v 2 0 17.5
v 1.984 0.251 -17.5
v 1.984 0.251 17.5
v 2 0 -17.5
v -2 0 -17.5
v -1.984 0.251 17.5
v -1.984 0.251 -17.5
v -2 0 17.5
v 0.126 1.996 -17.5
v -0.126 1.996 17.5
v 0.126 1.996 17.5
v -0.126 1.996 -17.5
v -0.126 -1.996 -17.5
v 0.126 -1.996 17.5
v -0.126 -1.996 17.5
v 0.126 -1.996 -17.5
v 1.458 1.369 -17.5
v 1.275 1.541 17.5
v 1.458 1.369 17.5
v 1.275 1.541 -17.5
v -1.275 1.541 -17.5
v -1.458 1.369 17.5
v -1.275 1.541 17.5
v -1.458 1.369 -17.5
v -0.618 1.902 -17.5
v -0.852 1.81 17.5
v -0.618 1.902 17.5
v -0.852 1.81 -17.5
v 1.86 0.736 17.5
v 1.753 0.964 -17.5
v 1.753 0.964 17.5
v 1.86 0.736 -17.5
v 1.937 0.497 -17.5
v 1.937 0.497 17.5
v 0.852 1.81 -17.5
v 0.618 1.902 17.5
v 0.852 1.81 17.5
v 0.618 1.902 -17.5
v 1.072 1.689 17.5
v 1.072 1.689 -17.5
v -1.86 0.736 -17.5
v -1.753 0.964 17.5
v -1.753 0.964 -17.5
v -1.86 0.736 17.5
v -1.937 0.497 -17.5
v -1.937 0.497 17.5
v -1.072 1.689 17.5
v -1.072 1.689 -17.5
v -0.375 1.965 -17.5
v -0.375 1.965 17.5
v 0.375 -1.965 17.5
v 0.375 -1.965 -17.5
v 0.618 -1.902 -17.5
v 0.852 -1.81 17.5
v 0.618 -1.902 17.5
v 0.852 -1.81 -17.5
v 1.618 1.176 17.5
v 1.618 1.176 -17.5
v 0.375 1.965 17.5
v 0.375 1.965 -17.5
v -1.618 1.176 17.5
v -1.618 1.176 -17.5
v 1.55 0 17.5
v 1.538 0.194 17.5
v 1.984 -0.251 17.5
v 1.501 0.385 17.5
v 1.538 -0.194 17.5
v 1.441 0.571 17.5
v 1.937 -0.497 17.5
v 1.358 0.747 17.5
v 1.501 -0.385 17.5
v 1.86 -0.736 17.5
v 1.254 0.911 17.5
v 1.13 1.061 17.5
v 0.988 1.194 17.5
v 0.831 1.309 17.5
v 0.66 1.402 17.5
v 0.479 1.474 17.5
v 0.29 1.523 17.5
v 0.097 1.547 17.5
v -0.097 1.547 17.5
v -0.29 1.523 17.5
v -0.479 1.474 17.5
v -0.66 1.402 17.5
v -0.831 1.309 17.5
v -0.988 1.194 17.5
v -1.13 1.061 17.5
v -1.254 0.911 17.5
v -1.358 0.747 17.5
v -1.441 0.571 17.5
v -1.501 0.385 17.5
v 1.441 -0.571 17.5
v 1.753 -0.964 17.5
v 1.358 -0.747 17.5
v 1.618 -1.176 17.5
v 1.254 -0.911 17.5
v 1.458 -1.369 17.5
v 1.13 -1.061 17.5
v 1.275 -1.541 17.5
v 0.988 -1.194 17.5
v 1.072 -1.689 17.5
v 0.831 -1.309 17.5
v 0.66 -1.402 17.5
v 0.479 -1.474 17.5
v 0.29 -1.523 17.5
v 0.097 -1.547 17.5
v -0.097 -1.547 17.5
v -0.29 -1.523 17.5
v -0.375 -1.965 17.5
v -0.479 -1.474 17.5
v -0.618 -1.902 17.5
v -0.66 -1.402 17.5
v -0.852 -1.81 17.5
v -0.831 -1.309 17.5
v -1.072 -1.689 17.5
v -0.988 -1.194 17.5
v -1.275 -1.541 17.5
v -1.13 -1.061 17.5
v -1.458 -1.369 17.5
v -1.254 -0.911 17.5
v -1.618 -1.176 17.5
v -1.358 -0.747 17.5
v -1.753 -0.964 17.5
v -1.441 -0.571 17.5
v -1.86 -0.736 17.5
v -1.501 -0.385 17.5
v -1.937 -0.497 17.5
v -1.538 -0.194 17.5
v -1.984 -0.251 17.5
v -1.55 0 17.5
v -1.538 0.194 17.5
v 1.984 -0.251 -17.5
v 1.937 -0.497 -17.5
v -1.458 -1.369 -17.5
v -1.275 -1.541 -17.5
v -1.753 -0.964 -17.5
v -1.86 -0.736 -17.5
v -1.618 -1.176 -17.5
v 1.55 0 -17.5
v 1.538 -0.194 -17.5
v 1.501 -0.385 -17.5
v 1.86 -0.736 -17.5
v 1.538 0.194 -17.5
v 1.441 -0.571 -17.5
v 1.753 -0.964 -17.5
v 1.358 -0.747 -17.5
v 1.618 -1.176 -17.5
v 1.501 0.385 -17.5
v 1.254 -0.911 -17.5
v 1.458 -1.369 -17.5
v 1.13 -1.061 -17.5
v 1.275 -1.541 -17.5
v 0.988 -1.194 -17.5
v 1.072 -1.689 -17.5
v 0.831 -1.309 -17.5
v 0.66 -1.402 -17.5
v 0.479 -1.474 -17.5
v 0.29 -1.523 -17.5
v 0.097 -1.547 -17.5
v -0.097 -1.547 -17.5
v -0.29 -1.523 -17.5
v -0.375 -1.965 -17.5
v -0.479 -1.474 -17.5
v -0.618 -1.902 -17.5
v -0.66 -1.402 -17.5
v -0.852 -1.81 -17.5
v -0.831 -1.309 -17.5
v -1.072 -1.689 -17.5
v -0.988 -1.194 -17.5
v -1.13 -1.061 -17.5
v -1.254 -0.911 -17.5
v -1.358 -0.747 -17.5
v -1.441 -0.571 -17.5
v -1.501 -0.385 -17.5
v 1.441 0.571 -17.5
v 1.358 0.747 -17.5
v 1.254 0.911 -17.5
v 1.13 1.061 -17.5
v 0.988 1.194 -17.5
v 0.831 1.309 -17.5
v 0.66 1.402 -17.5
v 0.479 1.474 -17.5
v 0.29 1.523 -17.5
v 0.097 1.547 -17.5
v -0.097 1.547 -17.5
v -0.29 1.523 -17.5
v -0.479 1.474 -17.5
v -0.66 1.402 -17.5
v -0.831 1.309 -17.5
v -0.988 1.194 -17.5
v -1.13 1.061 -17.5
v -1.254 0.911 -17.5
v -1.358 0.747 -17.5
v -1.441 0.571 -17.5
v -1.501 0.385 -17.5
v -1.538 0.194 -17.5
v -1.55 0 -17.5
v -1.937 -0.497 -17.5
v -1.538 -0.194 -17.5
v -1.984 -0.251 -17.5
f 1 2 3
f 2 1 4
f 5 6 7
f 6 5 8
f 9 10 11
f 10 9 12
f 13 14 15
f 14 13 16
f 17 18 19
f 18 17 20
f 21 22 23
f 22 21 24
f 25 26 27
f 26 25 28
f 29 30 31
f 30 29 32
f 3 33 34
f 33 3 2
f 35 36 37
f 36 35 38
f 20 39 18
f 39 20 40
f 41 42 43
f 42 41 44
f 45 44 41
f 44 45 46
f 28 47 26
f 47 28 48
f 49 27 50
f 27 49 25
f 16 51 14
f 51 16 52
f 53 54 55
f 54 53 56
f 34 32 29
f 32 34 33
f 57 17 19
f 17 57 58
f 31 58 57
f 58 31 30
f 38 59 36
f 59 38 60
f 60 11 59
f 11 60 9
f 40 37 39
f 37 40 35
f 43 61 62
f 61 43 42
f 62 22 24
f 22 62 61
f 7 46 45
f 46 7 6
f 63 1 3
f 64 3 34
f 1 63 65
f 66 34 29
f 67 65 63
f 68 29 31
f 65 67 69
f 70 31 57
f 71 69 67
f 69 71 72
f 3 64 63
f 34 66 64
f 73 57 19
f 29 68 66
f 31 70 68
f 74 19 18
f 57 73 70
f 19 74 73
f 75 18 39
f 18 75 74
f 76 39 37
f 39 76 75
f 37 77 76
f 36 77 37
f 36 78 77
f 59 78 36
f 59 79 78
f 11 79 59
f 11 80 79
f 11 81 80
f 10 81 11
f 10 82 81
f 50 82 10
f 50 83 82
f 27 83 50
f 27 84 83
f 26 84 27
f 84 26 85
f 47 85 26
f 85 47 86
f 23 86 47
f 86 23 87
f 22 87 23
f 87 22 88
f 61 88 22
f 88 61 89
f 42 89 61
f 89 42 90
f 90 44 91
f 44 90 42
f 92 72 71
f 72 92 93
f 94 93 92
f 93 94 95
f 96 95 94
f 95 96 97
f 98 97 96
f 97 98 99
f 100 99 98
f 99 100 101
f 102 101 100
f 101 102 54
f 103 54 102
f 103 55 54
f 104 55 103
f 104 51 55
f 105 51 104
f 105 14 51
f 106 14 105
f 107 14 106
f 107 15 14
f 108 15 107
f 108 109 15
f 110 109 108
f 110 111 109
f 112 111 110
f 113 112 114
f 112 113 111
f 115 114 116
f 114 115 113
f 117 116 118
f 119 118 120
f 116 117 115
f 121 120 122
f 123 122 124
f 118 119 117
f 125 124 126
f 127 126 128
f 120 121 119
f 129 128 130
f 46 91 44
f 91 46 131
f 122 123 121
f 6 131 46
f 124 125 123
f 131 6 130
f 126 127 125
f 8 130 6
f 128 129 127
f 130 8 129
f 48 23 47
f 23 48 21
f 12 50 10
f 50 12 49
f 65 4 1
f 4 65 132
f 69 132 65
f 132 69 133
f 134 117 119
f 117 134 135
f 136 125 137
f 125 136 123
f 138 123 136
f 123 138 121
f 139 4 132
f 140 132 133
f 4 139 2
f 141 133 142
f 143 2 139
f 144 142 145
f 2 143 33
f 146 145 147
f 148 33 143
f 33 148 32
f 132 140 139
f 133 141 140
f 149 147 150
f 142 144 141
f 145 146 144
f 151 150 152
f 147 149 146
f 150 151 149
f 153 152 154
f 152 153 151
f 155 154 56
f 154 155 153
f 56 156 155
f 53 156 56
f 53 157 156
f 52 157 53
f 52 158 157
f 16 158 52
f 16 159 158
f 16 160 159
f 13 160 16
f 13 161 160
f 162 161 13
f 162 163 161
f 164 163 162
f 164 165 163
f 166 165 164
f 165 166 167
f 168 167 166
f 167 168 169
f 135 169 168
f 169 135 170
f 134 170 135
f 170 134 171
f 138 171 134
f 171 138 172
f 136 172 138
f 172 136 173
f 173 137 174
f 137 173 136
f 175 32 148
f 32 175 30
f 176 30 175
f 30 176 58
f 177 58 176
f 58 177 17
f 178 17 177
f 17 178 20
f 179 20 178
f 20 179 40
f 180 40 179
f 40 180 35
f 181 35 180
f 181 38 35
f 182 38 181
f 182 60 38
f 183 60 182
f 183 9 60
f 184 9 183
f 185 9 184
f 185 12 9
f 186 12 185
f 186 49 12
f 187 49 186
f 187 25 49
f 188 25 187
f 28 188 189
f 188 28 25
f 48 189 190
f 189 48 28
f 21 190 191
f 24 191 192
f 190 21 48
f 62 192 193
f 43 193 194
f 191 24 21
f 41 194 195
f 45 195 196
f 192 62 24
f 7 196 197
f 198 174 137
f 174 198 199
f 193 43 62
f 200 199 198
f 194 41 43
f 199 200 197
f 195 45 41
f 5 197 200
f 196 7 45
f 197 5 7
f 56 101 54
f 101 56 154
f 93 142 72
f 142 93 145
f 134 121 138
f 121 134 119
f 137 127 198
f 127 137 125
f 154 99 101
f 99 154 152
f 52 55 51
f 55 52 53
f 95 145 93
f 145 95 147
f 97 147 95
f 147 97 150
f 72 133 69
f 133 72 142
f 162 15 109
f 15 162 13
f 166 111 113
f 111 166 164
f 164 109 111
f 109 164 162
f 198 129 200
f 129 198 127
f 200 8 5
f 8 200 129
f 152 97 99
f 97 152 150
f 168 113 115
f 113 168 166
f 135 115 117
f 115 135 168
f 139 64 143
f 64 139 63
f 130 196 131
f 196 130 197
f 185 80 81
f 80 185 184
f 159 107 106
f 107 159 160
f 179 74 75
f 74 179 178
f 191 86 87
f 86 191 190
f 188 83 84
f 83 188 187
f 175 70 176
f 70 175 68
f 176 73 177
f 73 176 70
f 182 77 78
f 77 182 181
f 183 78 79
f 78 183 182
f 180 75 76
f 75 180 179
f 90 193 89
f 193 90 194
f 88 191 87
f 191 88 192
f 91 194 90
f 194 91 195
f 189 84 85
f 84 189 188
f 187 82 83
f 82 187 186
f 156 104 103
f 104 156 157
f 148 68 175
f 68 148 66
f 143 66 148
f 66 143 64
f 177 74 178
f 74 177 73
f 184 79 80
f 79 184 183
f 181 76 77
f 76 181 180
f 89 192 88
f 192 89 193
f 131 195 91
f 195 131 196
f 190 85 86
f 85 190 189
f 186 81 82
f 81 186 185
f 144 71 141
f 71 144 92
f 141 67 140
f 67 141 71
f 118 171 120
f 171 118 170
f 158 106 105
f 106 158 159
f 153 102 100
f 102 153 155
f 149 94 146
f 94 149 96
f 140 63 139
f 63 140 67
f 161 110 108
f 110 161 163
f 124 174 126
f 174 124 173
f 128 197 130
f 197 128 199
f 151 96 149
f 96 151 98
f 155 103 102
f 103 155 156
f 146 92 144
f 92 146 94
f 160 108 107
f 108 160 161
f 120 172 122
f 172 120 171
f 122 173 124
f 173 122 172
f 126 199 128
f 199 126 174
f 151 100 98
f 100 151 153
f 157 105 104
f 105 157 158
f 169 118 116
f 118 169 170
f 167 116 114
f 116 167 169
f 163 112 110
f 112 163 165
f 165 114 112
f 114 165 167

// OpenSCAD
$fn = 50;


difference() {
	union() {
		translate(v = [0, 0, -17.5000000000]) {
			cylinder(h = 35, r = 2.0000000000);
		}
	}
	union() {
		translate(v = [0, 0, -100.0000000000]) {
			cylinder(h = 200, r = 1.5500000000);
		}
	}
}
